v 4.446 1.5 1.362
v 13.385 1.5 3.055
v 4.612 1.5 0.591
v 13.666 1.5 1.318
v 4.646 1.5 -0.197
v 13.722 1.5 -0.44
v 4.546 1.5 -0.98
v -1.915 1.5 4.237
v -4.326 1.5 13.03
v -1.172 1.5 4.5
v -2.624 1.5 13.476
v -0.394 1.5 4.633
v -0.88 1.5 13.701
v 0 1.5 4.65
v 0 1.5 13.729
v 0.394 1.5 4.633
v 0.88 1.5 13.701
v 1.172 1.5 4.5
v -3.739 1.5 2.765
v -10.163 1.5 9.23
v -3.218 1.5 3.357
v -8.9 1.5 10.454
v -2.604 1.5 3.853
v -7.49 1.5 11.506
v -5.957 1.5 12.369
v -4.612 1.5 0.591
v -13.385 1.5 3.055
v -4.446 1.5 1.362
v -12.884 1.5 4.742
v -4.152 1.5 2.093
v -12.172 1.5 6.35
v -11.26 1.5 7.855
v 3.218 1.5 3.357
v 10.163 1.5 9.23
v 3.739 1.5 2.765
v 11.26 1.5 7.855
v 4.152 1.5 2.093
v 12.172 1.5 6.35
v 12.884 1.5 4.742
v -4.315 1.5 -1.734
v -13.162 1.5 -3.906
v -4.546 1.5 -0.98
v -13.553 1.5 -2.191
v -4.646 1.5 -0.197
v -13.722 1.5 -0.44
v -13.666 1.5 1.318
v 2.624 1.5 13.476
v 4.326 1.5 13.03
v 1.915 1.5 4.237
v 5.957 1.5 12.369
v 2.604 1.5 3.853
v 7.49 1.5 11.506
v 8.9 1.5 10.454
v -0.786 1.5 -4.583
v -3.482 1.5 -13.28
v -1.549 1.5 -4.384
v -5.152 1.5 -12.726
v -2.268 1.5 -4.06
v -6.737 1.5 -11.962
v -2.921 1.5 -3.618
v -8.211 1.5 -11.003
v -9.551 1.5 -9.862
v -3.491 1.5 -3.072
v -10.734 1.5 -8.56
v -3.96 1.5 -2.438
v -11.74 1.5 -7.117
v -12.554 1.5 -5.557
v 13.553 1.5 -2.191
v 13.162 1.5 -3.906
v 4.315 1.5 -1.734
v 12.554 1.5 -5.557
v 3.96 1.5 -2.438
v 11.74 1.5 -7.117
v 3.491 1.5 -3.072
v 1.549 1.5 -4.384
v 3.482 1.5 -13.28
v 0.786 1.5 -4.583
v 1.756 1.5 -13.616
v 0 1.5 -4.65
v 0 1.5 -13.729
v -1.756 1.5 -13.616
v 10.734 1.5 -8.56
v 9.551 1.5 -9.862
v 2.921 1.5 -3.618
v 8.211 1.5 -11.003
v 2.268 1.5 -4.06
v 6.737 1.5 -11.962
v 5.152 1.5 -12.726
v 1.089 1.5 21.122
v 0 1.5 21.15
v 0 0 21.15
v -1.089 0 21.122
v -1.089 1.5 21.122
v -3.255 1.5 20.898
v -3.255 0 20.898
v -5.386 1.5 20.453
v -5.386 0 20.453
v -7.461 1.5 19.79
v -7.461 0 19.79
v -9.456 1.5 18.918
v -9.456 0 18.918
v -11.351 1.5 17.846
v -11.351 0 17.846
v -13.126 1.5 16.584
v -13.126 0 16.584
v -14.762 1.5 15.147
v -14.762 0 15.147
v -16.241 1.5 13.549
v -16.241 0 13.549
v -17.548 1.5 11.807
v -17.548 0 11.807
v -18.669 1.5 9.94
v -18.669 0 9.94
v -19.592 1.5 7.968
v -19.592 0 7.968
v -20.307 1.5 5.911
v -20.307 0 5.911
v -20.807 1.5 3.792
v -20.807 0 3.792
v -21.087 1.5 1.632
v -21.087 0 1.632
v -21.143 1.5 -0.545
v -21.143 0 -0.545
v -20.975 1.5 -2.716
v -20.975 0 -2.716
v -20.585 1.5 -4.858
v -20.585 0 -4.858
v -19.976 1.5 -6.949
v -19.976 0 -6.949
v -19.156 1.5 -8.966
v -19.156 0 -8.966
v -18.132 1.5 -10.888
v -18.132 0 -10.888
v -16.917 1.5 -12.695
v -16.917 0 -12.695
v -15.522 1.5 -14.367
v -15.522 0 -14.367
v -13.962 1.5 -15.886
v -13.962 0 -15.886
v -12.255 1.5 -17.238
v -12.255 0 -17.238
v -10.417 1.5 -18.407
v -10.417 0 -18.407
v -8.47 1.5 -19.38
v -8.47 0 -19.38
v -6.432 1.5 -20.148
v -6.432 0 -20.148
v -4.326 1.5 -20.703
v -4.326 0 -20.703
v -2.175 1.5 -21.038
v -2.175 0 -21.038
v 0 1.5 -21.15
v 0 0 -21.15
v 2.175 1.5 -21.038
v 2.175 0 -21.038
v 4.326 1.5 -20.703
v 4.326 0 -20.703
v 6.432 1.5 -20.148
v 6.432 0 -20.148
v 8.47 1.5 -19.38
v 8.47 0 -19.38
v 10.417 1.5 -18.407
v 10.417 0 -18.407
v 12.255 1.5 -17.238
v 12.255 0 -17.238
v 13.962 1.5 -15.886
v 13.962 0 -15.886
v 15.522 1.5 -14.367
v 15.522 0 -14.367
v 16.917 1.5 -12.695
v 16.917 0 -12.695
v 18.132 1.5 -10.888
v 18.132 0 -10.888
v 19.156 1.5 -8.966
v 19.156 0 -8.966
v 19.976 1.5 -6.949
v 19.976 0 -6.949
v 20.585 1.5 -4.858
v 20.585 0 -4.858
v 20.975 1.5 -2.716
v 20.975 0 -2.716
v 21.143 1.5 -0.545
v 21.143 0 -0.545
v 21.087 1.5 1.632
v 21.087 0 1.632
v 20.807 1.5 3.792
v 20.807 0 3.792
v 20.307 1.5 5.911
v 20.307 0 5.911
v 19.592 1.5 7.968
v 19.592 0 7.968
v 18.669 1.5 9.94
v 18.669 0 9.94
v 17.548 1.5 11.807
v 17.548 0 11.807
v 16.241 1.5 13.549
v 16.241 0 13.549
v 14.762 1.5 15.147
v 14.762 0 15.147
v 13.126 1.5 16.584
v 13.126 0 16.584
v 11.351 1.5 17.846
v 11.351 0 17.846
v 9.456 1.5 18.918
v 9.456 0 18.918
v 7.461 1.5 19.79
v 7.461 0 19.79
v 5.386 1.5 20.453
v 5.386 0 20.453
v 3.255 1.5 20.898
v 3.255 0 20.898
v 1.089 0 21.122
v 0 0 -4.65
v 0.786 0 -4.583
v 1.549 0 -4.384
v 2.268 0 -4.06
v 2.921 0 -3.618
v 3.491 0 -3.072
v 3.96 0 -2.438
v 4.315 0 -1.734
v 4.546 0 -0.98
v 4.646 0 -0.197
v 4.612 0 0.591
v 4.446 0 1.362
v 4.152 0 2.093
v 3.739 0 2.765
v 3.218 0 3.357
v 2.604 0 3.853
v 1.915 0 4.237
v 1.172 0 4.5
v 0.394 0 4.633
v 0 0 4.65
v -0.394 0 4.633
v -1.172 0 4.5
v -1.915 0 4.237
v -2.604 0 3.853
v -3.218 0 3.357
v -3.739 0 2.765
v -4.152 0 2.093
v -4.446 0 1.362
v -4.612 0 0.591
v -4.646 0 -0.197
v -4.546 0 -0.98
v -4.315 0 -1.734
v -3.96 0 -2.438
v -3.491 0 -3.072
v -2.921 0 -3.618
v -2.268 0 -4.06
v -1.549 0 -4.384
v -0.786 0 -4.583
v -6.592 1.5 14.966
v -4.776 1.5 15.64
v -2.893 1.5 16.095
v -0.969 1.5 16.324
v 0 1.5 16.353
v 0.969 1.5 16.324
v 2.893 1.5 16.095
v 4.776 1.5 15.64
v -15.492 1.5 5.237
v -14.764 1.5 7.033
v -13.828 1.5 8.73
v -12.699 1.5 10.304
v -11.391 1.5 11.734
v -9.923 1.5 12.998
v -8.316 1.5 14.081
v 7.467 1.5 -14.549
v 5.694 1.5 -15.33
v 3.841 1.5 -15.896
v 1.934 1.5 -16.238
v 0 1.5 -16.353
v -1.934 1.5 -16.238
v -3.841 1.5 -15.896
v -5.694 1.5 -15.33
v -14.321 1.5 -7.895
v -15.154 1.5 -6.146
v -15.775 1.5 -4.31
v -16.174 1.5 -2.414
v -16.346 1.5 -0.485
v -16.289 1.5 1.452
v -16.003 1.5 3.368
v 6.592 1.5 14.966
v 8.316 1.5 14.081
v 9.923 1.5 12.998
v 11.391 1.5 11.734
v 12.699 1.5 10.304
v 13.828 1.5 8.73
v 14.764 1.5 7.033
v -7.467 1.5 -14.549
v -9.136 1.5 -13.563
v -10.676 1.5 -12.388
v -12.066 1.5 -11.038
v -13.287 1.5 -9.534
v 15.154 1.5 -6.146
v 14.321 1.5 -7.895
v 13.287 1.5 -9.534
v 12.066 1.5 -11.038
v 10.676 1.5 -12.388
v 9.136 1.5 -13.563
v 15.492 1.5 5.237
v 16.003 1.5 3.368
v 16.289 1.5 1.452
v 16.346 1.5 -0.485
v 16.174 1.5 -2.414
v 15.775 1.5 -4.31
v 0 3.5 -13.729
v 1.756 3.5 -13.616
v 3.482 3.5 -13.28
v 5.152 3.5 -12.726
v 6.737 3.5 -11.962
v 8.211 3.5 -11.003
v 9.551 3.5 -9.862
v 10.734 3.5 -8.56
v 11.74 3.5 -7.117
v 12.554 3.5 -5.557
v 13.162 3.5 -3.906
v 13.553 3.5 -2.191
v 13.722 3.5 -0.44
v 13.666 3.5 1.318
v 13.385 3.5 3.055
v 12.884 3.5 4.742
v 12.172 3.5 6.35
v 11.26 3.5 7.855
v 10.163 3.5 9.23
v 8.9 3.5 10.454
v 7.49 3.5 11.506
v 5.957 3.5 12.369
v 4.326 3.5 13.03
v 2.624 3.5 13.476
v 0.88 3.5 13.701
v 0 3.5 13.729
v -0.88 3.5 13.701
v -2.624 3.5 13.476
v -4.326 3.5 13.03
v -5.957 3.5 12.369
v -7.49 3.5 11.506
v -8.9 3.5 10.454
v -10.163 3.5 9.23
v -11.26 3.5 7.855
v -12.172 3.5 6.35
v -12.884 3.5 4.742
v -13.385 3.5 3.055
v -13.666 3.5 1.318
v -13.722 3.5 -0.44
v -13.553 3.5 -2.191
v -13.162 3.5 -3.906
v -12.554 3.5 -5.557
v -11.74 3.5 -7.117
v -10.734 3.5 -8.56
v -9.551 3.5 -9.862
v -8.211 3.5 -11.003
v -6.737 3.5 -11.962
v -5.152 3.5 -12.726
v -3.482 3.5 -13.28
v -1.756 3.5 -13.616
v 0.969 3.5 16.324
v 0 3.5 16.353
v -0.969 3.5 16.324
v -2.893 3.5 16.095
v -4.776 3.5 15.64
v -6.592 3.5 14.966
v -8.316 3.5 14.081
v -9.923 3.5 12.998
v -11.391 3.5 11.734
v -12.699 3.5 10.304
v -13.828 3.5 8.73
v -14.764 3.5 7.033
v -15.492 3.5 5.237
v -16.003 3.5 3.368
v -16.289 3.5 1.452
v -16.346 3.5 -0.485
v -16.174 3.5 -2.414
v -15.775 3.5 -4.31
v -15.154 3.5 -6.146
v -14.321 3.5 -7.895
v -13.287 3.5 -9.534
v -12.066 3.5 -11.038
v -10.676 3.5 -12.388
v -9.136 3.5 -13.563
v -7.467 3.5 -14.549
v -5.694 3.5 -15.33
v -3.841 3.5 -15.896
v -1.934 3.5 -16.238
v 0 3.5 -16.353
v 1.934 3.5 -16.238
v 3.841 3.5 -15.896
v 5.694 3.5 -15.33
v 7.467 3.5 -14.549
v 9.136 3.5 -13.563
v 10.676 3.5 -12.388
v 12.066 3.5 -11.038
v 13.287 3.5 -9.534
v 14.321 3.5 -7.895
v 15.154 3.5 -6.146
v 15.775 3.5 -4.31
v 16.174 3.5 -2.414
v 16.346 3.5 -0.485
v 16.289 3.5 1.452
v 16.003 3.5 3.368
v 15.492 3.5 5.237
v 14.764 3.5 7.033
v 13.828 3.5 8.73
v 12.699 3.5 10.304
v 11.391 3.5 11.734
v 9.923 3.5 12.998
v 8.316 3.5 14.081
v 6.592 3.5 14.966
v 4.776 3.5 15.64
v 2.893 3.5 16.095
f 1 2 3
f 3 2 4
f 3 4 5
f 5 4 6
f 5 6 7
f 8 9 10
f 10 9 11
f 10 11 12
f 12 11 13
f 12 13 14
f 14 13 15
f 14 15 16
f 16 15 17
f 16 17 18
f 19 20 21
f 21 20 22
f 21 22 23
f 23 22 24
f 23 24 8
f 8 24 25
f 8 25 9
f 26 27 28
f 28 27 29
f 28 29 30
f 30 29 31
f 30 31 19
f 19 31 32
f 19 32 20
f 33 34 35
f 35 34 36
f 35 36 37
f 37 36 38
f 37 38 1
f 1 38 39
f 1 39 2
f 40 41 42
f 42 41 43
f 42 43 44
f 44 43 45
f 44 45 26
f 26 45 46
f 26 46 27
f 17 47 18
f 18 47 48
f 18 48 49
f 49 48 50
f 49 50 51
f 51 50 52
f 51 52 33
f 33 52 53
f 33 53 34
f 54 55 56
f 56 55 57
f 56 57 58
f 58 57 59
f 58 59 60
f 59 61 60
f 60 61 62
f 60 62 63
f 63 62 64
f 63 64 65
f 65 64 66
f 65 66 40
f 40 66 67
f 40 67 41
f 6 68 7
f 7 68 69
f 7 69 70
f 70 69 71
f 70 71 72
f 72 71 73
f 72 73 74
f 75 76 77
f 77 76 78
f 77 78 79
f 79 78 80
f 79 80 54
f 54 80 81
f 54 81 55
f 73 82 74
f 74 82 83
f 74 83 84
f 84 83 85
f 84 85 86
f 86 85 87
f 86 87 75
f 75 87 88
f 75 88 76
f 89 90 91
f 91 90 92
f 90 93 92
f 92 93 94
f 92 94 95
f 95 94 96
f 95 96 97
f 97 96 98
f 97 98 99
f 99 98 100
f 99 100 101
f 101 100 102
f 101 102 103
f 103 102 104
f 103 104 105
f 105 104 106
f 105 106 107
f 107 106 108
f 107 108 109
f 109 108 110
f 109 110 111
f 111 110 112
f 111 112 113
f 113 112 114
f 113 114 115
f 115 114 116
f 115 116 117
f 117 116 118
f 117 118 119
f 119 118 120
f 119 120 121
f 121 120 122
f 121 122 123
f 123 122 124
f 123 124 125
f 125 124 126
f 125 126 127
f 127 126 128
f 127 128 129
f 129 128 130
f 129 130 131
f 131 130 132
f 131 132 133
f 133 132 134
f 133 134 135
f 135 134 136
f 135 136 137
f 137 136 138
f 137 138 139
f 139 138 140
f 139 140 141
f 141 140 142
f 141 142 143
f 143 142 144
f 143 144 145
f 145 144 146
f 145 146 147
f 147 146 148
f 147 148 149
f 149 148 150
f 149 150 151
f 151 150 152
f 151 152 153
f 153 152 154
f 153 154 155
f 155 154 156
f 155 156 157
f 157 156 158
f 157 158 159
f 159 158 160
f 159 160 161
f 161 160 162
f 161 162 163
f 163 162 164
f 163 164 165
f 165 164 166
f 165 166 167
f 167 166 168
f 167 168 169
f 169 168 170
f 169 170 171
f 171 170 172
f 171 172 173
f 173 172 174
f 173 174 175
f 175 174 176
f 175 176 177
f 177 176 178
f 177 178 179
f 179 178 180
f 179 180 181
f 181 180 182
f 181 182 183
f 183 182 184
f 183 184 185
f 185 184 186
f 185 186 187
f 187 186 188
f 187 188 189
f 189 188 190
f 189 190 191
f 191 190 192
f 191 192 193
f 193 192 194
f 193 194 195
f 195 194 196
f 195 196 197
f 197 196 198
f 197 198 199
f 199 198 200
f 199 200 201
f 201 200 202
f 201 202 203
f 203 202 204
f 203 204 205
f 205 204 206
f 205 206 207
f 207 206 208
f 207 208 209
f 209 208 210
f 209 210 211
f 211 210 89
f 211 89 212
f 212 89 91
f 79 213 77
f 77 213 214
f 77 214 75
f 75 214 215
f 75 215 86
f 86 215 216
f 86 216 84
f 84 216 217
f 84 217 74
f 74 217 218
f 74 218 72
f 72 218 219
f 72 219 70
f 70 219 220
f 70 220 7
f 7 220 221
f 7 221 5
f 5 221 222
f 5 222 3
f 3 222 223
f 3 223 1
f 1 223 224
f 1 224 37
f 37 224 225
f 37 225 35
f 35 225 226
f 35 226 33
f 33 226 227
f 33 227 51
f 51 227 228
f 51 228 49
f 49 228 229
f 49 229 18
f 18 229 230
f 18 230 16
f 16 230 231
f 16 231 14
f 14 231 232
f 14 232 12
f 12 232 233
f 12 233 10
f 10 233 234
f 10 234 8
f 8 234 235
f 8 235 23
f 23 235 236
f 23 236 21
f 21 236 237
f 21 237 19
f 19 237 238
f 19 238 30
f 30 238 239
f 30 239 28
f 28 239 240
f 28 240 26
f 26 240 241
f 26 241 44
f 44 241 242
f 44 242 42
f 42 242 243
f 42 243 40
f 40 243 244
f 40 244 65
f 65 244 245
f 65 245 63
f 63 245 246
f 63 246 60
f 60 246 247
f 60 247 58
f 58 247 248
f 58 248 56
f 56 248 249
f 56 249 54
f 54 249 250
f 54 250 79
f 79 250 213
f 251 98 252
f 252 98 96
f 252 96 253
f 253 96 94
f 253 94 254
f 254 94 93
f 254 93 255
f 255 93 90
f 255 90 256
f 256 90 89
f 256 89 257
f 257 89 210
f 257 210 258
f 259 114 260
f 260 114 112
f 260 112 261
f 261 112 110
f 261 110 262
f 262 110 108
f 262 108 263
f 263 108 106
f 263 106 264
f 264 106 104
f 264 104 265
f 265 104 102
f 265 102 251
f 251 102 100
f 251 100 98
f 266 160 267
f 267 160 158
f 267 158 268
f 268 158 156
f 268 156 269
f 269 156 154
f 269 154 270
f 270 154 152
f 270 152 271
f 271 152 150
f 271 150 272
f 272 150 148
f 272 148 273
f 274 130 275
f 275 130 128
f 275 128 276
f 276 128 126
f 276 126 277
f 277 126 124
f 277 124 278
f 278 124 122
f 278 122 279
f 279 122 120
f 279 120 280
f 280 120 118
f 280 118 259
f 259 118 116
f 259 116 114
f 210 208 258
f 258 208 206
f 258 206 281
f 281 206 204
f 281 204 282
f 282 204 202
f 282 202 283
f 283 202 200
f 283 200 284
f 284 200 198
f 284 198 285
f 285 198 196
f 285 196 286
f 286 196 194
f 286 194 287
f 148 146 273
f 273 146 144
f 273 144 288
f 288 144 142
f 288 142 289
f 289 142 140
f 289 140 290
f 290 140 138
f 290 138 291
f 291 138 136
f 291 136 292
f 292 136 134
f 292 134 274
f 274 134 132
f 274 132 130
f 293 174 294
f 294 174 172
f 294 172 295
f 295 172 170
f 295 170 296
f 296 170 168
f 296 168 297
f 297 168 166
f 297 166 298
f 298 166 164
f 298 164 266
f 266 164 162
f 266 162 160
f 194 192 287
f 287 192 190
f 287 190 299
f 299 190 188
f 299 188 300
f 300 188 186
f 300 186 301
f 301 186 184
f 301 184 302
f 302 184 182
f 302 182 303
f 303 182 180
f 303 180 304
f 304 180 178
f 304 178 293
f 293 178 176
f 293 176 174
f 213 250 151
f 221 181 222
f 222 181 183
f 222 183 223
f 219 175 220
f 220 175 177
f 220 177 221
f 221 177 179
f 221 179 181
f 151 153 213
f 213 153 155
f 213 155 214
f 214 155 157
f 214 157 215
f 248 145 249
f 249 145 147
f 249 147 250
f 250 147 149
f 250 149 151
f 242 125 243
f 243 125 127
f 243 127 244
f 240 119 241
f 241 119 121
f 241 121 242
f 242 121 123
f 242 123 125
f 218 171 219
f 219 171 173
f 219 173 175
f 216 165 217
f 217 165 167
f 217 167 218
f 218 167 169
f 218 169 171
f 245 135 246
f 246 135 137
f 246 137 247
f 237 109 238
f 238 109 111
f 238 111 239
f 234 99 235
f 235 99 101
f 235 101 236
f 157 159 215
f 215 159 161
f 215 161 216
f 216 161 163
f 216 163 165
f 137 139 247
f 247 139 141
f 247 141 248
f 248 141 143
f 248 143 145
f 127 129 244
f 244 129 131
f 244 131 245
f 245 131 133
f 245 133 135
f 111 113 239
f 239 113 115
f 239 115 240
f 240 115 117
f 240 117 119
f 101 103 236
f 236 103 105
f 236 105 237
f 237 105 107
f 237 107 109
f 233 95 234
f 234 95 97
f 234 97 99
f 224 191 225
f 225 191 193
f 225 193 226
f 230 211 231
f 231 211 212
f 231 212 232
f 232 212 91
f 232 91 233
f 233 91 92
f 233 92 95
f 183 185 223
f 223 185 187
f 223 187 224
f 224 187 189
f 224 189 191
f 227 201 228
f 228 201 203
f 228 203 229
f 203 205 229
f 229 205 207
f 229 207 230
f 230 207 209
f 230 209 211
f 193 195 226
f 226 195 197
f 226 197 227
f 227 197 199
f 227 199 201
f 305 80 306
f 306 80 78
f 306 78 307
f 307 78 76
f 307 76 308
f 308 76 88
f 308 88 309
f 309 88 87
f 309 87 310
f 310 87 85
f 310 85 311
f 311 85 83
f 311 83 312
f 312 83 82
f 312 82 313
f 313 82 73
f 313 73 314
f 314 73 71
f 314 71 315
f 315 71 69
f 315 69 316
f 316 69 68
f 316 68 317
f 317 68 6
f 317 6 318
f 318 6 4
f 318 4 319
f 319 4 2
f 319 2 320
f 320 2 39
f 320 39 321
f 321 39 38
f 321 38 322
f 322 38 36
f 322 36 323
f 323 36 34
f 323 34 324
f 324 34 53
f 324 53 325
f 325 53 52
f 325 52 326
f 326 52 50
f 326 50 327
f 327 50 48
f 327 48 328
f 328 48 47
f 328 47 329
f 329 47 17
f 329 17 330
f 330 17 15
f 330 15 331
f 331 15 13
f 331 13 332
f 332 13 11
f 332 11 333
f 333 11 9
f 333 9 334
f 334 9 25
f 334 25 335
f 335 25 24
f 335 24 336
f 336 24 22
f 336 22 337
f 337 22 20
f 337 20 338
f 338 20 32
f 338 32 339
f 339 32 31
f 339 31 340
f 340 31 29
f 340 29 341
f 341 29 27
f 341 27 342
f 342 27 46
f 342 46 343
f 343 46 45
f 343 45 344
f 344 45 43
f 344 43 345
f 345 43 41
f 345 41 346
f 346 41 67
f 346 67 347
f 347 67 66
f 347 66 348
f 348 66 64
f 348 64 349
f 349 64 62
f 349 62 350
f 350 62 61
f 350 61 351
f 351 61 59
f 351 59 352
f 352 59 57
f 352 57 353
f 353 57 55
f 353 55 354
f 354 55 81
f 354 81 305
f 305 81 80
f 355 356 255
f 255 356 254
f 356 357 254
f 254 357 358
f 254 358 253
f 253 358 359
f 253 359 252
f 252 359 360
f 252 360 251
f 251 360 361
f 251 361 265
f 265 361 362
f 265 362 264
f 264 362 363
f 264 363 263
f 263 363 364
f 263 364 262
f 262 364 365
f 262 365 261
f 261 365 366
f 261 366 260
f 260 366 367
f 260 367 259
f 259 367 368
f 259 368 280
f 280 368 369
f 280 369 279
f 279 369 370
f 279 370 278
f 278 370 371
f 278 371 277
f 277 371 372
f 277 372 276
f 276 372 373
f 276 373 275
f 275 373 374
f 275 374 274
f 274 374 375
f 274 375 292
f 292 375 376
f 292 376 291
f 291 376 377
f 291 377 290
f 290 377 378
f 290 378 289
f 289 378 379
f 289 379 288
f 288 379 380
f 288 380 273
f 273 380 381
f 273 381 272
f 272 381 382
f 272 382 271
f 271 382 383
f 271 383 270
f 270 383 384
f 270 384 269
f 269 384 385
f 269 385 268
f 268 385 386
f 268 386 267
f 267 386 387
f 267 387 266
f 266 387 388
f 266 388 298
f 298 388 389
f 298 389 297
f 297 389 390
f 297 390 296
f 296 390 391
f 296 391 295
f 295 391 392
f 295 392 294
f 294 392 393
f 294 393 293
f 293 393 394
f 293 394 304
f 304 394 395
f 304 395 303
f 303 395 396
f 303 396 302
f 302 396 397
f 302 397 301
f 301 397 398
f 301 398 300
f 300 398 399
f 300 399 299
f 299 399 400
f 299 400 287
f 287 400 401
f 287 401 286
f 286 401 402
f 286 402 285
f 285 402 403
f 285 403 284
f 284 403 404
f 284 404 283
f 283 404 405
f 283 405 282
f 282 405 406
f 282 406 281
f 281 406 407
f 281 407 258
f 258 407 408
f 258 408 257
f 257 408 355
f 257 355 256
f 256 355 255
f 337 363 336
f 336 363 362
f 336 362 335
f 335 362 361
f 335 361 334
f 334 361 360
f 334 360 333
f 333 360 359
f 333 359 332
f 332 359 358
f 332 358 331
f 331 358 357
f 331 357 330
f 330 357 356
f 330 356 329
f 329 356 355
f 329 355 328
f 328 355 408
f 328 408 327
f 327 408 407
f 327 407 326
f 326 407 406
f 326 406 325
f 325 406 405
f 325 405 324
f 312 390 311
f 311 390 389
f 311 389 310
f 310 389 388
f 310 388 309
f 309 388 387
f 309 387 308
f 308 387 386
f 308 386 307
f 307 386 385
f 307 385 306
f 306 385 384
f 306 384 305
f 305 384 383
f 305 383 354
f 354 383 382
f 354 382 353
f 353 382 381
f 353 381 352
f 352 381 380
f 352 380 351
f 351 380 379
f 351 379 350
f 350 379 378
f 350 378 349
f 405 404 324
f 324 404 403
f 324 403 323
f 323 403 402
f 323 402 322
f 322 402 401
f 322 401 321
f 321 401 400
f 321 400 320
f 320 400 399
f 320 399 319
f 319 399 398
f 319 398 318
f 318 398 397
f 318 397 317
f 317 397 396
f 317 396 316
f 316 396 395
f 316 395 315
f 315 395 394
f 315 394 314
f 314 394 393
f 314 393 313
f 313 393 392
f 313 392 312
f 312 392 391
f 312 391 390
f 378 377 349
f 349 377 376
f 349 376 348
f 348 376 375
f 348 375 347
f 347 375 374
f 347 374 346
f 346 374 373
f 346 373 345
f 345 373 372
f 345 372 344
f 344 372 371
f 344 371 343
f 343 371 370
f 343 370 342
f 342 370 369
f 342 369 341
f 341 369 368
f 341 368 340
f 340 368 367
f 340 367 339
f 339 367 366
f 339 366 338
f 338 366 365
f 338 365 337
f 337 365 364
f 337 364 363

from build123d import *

# Parameters (mm, degrees)
SKETCH1_R           = 21.15
SKETCH1_R_2         = 4.65
BOSS_EXTRUDE1_DEPTH = 1.5
SKETCH1_3_R         = 16.35319065
SKETCH1_3_R_2       = 13.728990349
BOSS_EXTRUDE2_DEPTH = 3.5


with BuildPart() as part:
    # Sketch1 → Boss-Extrude1 (new body)
    with BuildSketch(Plane(origin=(0, 0, 0), x_dir=(1, 0, 0), z_dir=(0, 1, 0))):
        Circle(SKETCH1_R)
        Circle(SKETCH1_R_2, mode=Mode.SUBTRACT)
    extrude(amount=BOSS_EXTRUDE1_DEPTH)

    # Sketch1<3> → Boss-Extrude2 (add)
    with BuildSketch(Plane(origin=(0, 0, 0), x_dir=(1, 0, 0), z_dir=(0, 1, 0))):
        Circle(SKETCH1_3_R)
        Circle(SKETCH1_3_R_2, mode=Mode.SUBTRACT)
    extrude(amount=BOSS_EXTRUDE2_DEPTH)


solid = part.part
